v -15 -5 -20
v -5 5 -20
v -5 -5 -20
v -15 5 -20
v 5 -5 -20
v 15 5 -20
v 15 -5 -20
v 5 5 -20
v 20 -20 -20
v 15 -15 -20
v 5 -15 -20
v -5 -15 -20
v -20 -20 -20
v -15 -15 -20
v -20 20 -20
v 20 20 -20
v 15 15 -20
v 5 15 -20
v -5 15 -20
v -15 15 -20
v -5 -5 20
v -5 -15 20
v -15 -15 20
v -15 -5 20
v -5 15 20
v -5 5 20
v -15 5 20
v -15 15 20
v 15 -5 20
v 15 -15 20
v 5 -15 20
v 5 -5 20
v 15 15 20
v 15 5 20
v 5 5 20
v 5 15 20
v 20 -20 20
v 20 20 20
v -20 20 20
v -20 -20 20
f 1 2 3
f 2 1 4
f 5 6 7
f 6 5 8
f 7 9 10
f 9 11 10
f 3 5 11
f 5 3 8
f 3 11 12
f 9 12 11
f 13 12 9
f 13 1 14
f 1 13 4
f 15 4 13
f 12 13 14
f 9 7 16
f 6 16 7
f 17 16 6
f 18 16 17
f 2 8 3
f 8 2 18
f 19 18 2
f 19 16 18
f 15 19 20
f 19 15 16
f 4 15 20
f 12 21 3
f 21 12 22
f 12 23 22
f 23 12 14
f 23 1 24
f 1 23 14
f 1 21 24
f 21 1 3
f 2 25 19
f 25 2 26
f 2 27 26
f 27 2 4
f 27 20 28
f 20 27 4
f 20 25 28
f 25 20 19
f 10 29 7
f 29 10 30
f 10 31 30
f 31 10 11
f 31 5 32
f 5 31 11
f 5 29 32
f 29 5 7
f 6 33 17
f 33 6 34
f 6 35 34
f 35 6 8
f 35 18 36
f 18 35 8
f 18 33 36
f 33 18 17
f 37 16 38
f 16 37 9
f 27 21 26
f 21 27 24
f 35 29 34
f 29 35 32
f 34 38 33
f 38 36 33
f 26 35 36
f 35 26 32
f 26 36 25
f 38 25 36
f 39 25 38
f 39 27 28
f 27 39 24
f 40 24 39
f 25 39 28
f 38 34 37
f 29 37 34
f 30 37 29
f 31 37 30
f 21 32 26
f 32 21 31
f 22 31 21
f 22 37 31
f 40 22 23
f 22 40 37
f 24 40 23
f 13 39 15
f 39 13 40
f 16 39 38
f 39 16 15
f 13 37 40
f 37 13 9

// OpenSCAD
// Parameters
block_width = 40;
block_depth = 40;
block_height = 40; // Increased height to match original model

hole_size = 10; // size of the square base of the pyramid
hole_spacing = 20; // center-to-center spacing between holes
hole_height = block_height + 0.1; // Slightly more than block height to ensure through-hole

module hollow_block() {
    difference() {
        // Main block
        cube([block_width, block_depth, block_height], center = true);

        // Pyramidal holes
        for (x = [-hole_spacing/2, hole_spacing/2])
            for (y = [-hole_spacing/2, hole_spacing/2])
                translate([x, y, 0])
                    pyramid_hole();
    }
}

// Module to create a square pyramidal hole
module pyramid_hole() {
    translate([0, 0, -block_height/2])
        linear_extrude(height = hole_height, center = false)
            polygon(points=[[ -hole_size/2, -hole_size/2],
                            [  hole_size/2, -hole_size/2],
                            [  hole_size/2,  hole_size/2],
                            [ -hole_size/2,  hole_size/2]],
                    paths=[[0,1,2,3]]);
}

// Render the model
hollow_block();
